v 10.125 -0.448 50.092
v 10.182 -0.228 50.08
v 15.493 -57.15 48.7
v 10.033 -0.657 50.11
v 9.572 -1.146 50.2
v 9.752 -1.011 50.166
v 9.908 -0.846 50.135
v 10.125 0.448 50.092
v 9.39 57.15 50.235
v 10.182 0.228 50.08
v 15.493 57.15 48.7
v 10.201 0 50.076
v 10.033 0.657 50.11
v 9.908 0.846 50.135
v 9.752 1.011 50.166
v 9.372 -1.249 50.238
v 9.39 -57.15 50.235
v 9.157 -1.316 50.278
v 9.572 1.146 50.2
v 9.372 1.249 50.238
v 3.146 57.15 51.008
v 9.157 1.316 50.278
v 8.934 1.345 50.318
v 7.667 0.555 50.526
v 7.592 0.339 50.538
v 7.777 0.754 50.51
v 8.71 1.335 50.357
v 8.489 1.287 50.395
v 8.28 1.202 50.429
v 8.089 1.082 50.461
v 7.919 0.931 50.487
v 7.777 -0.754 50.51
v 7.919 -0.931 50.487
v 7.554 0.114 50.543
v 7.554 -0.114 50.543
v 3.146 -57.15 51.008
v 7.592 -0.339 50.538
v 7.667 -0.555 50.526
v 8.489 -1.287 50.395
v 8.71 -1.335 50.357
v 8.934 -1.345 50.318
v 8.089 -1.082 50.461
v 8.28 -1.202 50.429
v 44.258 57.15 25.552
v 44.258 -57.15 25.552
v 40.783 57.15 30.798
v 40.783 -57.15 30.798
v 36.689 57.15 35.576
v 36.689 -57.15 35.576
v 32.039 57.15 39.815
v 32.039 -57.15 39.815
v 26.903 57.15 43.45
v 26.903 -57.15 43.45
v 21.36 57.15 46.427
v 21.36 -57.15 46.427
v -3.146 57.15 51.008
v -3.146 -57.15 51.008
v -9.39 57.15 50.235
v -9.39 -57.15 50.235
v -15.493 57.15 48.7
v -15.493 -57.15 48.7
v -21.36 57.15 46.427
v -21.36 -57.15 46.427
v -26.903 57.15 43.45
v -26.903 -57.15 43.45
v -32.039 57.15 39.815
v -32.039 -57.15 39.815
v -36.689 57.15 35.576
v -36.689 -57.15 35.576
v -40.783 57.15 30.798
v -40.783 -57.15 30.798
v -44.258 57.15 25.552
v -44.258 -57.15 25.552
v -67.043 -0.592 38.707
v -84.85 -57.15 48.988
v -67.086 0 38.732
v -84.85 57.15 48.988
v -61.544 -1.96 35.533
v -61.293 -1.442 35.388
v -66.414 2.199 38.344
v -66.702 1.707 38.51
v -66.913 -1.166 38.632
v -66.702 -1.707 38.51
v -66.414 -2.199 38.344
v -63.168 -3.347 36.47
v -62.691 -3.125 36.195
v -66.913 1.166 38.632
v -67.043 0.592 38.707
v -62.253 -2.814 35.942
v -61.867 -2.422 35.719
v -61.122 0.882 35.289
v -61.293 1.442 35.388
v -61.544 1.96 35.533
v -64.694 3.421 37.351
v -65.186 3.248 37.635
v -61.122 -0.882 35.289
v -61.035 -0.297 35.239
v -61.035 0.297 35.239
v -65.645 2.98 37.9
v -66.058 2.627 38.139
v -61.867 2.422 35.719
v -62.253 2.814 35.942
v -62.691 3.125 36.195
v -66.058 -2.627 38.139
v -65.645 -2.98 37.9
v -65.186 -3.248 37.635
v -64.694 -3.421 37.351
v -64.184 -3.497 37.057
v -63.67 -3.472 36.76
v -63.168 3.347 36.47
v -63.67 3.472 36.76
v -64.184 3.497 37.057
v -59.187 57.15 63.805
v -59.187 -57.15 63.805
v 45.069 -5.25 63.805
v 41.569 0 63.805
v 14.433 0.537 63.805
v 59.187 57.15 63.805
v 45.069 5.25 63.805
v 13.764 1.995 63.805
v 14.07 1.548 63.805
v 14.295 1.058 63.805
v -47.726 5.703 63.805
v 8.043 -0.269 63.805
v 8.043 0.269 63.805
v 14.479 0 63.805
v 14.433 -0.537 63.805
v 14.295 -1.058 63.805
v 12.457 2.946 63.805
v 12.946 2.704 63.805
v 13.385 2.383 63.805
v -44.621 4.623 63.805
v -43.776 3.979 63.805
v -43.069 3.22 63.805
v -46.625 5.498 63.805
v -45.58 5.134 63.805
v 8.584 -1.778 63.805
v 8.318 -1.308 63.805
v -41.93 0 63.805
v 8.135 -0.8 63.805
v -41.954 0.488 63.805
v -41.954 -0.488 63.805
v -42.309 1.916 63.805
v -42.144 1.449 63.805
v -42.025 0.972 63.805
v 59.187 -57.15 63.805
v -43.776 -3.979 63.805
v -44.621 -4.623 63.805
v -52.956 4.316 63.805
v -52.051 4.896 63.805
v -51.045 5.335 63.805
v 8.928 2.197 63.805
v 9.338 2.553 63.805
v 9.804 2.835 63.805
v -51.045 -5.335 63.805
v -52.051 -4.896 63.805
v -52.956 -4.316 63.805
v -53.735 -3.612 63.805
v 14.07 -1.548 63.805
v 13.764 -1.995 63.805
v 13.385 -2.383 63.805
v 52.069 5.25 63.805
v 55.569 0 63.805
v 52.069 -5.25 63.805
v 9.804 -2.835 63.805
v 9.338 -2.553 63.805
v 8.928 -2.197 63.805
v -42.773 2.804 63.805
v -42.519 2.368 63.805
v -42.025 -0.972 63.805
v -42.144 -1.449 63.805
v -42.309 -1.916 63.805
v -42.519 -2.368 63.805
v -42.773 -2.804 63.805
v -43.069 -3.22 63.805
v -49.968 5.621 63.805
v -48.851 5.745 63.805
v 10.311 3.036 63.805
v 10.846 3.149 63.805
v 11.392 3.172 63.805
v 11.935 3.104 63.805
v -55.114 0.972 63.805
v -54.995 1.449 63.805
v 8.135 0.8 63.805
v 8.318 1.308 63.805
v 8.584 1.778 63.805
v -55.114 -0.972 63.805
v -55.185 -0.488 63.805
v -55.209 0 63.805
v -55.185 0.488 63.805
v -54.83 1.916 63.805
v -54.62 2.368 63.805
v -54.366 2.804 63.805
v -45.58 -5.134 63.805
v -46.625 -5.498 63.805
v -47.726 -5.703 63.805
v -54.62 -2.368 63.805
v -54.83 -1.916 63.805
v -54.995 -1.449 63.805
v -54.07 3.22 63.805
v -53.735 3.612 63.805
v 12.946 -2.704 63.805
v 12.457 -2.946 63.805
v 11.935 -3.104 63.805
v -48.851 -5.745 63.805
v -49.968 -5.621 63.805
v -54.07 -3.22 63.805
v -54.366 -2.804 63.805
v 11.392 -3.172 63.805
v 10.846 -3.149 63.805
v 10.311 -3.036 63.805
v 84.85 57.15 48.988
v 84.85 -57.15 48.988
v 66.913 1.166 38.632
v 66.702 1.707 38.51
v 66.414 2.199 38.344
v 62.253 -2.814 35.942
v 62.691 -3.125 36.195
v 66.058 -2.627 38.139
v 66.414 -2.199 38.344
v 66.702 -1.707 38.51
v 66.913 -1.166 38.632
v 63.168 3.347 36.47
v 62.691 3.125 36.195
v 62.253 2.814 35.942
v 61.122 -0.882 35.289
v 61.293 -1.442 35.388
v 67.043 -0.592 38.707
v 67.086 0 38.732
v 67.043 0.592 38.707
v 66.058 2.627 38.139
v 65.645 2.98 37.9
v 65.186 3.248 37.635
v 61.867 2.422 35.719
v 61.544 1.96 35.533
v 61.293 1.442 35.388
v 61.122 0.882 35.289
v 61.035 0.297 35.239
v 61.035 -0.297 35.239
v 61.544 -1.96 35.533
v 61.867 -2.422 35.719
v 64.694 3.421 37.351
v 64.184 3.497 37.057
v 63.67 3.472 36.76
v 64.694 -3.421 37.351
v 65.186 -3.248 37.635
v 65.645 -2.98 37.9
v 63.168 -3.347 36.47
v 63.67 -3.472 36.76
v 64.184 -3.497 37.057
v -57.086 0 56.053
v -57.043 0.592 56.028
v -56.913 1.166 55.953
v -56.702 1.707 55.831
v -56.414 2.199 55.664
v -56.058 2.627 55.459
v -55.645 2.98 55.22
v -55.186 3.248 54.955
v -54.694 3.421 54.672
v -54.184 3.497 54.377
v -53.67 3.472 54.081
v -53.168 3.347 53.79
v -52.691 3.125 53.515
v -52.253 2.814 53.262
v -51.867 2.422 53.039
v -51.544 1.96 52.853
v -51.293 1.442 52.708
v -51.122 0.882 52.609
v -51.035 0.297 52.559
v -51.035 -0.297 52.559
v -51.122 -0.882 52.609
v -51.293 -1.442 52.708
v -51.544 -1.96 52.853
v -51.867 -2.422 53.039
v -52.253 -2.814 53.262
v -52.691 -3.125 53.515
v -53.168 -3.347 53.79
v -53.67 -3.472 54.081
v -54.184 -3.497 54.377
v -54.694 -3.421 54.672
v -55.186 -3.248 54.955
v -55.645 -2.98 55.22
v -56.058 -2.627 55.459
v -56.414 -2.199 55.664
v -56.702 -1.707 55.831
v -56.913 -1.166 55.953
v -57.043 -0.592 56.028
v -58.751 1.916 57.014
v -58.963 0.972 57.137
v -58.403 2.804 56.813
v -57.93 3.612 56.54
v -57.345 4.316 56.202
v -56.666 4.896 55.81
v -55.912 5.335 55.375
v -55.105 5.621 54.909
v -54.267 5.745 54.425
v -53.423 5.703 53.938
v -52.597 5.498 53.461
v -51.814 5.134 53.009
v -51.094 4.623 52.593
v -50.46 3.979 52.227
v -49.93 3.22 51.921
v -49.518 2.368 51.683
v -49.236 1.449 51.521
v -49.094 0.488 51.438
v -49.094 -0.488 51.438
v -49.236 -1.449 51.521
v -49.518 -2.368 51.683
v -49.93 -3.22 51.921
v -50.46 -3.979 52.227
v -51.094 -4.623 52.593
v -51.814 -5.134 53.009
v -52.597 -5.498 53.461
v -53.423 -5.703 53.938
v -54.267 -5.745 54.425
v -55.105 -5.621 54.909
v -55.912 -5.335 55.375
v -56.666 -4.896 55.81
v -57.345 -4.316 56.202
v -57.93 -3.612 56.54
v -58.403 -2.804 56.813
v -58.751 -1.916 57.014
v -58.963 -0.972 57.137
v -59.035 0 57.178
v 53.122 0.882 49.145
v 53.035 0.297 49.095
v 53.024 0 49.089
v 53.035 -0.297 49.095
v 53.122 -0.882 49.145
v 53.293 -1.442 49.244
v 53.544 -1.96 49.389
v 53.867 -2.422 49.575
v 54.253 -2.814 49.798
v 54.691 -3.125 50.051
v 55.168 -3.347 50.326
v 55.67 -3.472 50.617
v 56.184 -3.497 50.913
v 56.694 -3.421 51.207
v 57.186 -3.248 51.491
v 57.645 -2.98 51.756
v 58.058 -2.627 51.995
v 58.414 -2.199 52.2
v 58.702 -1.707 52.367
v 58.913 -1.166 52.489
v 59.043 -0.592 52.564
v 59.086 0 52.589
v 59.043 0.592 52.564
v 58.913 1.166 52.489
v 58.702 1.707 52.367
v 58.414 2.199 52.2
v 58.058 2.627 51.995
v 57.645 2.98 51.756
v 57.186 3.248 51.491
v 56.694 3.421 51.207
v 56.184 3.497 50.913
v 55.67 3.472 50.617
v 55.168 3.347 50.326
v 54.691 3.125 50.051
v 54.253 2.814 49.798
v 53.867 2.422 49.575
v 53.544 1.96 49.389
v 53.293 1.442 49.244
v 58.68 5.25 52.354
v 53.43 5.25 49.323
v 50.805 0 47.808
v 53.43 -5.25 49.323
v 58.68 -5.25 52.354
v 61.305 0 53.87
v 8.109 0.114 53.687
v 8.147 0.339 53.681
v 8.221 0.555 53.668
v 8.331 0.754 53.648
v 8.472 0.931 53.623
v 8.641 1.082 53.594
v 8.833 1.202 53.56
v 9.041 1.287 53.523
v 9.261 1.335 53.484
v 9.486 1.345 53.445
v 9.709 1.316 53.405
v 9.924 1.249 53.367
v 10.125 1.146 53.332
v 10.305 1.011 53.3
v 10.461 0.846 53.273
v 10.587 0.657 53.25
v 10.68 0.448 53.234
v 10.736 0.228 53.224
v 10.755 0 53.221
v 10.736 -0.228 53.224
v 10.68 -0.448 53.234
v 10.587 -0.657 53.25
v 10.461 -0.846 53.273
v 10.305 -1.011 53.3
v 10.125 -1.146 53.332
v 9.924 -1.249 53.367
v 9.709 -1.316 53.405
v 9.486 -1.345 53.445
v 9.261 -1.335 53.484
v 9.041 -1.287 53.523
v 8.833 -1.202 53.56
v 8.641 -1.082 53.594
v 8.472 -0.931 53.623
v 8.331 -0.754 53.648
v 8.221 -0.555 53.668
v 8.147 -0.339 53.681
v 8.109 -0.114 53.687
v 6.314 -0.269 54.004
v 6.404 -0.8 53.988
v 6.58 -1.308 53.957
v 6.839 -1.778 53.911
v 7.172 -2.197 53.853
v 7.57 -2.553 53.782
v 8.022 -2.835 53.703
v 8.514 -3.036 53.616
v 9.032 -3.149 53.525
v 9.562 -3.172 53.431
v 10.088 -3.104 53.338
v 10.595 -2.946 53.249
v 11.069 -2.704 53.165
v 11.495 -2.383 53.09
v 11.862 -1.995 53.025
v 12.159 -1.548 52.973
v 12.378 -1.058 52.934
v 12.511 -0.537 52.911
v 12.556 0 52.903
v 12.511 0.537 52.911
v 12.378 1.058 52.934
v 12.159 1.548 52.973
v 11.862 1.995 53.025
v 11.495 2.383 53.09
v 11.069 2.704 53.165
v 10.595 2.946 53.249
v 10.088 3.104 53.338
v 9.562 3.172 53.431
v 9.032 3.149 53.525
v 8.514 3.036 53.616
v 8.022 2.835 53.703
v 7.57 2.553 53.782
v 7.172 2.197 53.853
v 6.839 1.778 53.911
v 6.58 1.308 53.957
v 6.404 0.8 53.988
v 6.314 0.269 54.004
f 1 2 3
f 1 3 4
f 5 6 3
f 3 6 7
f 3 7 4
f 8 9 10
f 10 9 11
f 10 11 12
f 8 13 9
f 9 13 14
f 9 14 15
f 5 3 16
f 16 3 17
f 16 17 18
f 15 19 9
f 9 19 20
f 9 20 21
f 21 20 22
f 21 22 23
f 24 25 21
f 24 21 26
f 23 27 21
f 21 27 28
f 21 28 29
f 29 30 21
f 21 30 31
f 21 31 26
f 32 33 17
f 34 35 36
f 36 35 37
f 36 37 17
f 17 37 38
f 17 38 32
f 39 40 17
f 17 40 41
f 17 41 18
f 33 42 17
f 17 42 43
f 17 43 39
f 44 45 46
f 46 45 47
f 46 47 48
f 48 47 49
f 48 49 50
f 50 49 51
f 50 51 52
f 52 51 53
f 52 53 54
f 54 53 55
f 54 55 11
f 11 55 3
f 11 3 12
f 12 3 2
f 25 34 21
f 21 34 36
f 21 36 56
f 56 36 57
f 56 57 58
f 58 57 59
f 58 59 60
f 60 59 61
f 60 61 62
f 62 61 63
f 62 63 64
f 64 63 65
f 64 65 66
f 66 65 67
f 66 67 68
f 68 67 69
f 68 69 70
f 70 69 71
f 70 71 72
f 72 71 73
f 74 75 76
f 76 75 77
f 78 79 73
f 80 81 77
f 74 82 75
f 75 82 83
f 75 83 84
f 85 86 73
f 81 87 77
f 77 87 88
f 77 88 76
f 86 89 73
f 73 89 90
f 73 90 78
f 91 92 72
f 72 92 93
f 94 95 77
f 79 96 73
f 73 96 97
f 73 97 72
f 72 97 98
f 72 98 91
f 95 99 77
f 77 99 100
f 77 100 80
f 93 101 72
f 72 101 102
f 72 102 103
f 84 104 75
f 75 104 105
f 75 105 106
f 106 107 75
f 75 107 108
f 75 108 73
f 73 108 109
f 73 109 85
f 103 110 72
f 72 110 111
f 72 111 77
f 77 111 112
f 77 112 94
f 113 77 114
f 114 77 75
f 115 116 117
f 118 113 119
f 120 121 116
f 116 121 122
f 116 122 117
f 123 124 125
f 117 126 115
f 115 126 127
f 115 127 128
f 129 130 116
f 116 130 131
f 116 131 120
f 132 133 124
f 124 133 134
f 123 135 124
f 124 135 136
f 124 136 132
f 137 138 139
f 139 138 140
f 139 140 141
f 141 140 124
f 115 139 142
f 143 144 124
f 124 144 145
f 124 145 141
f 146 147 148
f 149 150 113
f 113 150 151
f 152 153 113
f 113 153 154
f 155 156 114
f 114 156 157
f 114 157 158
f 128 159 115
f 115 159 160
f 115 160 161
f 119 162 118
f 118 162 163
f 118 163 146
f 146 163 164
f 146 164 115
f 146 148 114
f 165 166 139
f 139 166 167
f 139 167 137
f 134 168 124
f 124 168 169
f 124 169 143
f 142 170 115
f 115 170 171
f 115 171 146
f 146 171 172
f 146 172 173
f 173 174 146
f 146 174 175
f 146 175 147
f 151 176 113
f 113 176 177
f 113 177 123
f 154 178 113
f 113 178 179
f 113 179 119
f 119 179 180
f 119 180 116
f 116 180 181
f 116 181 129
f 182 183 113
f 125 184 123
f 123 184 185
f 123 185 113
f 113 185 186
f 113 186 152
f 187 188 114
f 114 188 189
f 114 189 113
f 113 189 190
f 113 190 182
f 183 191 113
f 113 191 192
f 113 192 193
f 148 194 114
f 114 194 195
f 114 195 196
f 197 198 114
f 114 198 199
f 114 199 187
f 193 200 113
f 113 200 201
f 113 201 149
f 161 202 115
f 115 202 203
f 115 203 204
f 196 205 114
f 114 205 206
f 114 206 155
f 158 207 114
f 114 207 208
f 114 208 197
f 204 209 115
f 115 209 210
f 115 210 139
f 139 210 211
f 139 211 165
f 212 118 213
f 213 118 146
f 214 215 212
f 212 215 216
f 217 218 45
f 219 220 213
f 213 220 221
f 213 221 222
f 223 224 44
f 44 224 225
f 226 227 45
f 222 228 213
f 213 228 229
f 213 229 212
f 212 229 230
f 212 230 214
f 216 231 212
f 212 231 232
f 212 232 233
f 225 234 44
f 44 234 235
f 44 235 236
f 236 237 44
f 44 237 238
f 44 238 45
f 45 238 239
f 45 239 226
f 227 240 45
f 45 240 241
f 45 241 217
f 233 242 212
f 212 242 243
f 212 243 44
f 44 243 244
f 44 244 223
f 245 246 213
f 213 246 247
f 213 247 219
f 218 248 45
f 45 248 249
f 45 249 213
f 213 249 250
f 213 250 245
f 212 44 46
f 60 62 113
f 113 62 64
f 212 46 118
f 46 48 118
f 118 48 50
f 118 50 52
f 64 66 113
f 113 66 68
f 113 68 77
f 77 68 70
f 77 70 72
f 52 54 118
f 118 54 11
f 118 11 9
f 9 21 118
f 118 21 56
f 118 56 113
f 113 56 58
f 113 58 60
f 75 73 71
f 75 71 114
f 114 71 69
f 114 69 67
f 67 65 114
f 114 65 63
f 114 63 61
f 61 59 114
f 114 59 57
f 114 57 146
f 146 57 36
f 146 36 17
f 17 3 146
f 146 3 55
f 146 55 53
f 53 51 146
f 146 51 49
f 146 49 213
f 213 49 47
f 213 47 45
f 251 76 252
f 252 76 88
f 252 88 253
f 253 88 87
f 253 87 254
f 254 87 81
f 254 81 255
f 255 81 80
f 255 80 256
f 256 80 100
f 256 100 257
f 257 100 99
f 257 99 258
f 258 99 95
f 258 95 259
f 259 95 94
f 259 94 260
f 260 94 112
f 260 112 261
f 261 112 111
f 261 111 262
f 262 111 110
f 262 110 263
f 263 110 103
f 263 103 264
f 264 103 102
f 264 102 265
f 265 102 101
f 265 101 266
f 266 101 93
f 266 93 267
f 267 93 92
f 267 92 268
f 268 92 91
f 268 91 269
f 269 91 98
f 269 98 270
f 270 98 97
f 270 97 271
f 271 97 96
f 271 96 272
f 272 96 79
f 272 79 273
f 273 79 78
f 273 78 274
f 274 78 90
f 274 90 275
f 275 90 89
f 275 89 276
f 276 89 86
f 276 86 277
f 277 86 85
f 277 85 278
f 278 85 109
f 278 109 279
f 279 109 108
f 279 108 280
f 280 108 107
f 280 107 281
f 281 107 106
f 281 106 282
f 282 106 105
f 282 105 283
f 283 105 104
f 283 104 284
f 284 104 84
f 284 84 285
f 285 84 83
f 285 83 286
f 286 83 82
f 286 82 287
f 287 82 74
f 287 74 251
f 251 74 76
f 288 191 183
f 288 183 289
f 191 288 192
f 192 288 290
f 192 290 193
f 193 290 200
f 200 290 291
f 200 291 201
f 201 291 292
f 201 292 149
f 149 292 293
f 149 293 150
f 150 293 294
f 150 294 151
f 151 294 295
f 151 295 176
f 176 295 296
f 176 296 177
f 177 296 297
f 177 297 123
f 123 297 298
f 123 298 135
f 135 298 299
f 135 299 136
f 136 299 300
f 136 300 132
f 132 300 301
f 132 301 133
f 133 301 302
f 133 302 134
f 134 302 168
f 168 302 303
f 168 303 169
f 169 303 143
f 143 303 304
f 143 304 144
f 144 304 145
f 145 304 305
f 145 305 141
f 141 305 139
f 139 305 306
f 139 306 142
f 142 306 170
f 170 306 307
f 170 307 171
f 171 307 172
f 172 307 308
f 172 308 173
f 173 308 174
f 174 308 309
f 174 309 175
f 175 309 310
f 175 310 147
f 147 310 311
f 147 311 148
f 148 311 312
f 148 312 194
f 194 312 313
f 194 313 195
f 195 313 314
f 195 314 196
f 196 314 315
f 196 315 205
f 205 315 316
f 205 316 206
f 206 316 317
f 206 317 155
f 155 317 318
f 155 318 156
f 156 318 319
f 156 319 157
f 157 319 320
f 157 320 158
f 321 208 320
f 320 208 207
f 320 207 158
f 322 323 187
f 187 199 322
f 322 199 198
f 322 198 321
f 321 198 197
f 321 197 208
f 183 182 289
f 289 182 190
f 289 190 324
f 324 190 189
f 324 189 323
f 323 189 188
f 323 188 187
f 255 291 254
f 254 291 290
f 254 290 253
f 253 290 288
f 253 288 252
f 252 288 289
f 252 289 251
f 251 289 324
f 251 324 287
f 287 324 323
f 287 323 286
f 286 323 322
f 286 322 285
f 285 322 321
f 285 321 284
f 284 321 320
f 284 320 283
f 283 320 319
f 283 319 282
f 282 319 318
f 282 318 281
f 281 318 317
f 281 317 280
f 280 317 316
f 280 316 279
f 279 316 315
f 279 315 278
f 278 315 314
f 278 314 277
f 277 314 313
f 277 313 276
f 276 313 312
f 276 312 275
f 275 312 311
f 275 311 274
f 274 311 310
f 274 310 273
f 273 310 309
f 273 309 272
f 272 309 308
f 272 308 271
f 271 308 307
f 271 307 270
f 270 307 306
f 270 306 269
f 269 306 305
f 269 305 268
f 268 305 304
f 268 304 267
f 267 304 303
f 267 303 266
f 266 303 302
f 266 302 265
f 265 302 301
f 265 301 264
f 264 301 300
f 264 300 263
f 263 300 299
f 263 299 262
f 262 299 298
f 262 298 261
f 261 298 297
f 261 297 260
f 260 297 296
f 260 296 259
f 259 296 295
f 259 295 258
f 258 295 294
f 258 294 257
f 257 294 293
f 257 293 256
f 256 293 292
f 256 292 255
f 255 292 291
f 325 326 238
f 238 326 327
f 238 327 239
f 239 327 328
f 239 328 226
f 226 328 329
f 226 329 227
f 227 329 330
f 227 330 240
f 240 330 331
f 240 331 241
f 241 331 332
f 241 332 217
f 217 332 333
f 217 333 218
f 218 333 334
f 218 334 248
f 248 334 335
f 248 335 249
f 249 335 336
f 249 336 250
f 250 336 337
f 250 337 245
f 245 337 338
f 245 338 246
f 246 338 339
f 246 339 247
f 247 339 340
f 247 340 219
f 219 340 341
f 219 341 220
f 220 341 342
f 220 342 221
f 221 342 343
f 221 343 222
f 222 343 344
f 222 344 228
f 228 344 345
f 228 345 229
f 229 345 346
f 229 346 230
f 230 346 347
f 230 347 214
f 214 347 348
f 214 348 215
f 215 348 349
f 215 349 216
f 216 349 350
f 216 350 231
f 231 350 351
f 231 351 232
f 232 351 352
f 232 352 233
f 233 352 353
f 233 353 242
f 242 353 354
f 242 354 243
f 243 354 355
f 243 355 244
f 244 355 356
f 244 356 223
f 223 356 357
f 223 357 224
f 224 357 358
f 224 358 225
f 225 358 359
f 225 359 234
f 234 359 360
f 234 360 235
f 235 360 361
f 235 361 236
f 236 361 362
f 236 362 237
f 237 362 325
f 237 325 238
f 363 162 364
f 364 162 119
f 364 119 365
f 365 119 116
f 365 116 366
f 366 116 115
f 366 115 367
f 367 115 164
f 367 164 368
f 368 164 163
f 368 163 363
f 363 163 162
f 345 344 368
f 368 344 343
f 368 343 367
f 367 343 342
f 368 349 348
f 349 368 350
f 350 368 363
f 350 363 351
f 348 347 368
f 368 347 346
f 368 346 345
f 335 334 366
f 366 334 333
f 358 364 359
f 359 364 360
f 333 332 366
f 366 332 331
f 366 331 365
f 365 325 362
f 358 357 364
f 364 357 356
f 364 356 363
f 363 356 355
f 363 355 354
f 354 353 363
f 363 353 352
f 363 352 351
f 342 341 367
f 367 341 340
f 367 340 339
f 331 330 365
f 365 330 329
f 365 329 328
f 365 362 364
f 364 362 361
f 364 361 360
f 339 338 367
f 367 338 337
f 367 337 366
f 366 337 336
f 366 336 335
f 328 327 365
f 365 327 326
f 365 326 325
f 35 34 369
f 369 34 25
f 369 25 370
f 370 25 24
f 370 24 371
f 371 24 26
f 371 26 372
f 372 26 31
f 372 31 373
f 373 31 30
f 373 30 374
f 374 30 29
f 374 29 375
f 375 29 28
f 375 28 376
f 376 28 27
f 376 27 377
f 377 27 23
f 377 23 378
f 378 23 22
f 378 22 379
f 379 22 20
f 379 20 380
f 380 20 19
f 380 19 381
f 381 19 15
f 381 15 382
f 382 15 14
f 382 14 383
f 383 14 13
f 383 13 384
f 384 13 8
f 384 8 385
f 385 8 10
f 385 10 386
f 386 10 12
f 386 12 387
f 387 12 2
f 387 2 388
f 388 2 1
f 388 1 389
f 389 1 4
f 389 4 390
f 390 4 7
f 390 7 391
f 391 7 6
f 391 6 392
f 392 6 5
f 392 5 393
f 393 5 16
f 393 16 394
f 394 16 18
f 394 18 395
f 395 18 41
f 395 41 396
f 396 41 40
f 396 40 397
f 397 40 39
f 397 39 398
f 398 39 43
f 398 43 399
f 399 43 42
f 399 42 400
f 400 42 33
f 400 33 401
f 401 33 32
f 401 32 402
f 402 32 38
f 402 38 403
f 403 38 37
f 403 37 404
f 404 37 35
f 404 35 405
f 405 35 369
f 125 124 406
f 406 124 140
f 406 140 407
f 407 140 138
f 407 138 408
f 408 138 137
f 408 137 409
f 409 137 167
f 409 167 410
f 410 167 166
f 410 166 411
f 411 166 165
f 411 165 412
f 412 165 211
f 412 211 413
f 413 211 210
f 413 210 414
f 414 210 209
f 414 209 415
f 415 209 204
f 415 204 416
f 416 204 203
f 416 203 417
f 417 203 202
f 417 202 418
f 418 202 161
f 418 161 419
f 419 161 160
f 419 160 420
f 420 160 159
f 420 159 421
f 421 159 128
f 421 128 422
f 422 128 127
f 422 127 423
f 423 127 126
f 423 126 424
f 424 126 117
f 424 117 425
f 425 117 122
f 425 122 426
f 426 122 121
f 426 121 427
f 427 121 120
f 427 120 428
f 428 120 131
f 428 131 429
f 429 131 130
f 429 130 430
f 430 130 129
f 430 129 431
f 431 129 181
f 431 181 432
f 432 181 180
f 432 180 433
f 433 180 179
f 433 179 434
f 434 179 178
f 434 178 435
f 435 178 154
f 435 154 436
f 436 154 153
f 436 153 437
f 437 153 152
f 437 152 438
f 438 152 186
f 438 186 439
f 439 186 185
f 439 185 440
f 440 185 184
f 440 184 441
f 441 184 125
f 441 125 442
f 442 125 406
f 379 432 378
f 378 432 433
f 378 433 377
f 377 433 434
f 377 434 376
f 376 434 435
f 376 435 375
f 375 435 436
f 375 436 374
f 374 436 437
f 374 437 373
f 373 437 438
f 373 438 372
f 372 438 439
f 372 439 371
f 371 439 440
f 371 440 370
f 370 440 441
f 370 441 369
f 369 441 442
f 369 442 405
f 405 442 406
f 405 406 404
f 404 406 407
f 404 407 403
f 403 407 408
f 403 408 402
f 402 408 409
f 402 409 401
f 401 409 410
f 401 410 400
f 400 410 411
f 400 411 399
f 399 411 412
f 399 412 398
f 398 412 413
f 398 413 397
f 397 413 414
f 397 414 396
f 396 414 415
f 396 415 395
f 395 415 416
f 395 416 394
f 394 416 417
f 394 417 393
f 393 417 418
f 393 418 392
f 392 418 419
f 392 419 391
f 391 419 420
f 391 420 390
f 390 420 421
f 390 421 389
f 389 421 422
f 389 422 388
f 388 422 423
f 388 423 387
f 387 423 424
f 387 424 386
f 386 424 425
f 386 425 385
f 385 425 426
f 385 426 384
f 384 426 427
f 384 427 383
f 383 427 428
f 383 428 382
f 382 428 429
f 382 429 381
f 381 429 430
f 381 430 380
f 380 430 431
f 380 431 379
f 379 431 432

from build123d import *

# Parameters (mm, degrees)
BOSS_EXTRUDE1_DEPTH  = 57.15
CUT_EXTRUDE1_START   = -16.000000004
SKETCH3_R            = 3.499999985
CUT_EXTRUDE1_DEPTH   = 105.568182472
CUT_SWEEP1_PROFILE_R = 1.3462
CUT_SWEEP2_START     = 54.2798
CUT_SWEEP2_OUTLINE_R = 3.175
CUT_SWEEP2_DEPTH     = 11.070212874


# Read off the part's stored shape, not the designer's step: Cut-Sweep2
with BuildPart() as part:
    # Sketch1 → Boss-Extrude1 (new, symmetric)
    with BuildSketch(Plane(origin=(0, 0, 0), x_dir=(1, 0, 0), z_dir=(0, 1, 0))):
        with BuildLine():
            Line((-44.258055055, -25.5524), (-84.849935901, -48.988133333))
            Line((-84.849935901, -48.988133333), (-59.186716436, -63.8048))
            Line((-59.186716436, -63.8048), (0, -63.8048))
            Line((0, -63.8048), (0, -51.1048))
            ThreePointArc((0, -51.1048), (-25.5524, -44.258055055), (-44.258055055, -25.5524))
        make_face()
        with BuildLine():
            Line((0, -51.1048), (0, -63.8048))
            Line((0, -63.8048), (59.186716436, -63.8048))
            Line((59.186716436, -63.8048), (84.849935901, -48.988133333))
            Line((84.849935901, -48.988133333), (44.258055055, -25.5524))
            ThreePointArc((44.258055055, -25.5524), (25.5524, -44.258055055), (0, -51.1048))
        make_face()
    extrude(amount=BOSS_EXTRUDE1_DEPTH, both=True)

    # Sketch2 → Cut-Revolve7 (revolve, cut)
    with BuildSketch(Plane(origin=(0, 0, 0), x_dir=(1, 0, 0), z_dir=(0, 1, 0)), mode=Mode.PRIVATE) as cut_revolve7_sk:
        Polygon((-43.878504985, -64.929800036), (-44.528024059, -63.8048), (-48.569475926, -63.8048), (-47.770256416, -65.189088798), (-46.909593885, -66.679800029), align=None)
        Polygon((-48.569475926, -63.8048), (-44.528024059, -63.8048), (-51.024306947, -52.552907978), (-54.055395847, -54.30290797), align=None)
        Polygon((-54.055395847, -54.30290797), (-51.024306947, -52.552907978), (-61.024306886, -35.232400008), (-64.055395786, -36.9824), align=None)
    cut_revolve7 = revolve(cut_revolve7_sk.sketch.rotate(Axis((-64.055395786, 0, 36.9824), (0.4999999999999998, 0, 0.8660254037844388)), 180), axis=Axis((-64.055395786, 0, 36.9824), (0.4999999999999998, 0, 0.8660254037844388)), mode=Mode.SUBTRACT)

    # Sketch2<7> → Cut-Revolve8 (revolve, cut)
    with BuildSketch(Plane(origin=(0, 0, 0), x_dir=(1, 0, 0), z_dir=(0, 1, 0)), mode=Mode.PRIVATE) as cut_revolve8_sk:
        Polygon((-44.528024059, -63.8048), (-41.929947764, -63.8048), (-49.075749726, -51.427907942), (-51.024306947, -52.552907978), align=None)
    revolve(cut_revolve8_sk.sketch.rotate(Axis((-64.055395786, 0, 36.9824), (0.4999999999999998, 0, 0.8660254037844388)), 180), axis=Axis((-64.055395786, 0, 36.9824), (0.4999999999999998, 0, 0.8660254037844388)), mode=Mode.SUBTRACT)

    # Mirror1: Cut-Revolve7 across plane
    add(cut_revolve7.mirror(Plane(origin=(0, 0, 0), x_dir=(0, 0, 1), z_dir=(1, 0, 0))), mode=Mode.SUBTRACT)

    # Sketch3 → Cut-Extrude1 (cut, through all)
    with BuildSketch(Plane(origin=(0, 0, 0), x_dir=(-0.8660254037844386, 0, -0.5000000000000001), z_dir=(0.5000000000000001, 0, -0.8660254037844386)).offset(CUT_EXTRUDE1_START)):
        Polygon((-76.995888937, 5.250000041), (-80.026977874, 0), (-76.995888937, -5.250000041), (-70.933711063, -5.250000041), (-67.902622126, 0), (-70.933711063, 5.250000041), align=None)
        with Locations(Location((-73.9648, 0, 0), (0, 0, 180))):
            Circle(SKETCH3_R, mode=Mode.SUBTRACT)
    extrude(amount=-CUT_EXTRUDE1_DEPTH, mode=Mode.SUBTRACT)

    # Cut-Sweep1: sweep along a path in Sketch4
    with BuildLine(Plane(origin=(0, 0, 0), x_dir=(1, 0, 0), z_dir=(0, 1, 0))) as cut_sweep1_path:
        Line((0, 0), (9.429525456, -53.454473505))
    # Cut-Sweep1 profile (on start of the path) → Cut-Sweep1 (sweep, cut)
    with BuildSketch(Plane(origin=(0, 0, 0), x_dir=(0.984794960650155, 0, -0.17372071113733015), z_dir=(0.17372071113733015, 0, 0.984794960650155))):
        Circle(CUT_SWEEP1_PROFILE_R)
    sweep(path=cut_sweep1_path.line, mode=Mode.SUBTRACT)

    # Cut-Sweep2 outline → Cut-Sweep2 (cut)
    with BuildSketch(Plane(origin=(0, 0, 0), x_dir=(0.984794960650155, 0, -0.17372071113733004), z_dir=(0.17372071113733, 0, 0.984794960650155)).offset(CUT_SWEEP2_START)):
        Circle(CUT_SWEEP2_OUTLINE_R)
    extrude(amount=CUT_SWEEP2_DEPTH, mode=Mode.SUBTRACT)


solid = part.part
